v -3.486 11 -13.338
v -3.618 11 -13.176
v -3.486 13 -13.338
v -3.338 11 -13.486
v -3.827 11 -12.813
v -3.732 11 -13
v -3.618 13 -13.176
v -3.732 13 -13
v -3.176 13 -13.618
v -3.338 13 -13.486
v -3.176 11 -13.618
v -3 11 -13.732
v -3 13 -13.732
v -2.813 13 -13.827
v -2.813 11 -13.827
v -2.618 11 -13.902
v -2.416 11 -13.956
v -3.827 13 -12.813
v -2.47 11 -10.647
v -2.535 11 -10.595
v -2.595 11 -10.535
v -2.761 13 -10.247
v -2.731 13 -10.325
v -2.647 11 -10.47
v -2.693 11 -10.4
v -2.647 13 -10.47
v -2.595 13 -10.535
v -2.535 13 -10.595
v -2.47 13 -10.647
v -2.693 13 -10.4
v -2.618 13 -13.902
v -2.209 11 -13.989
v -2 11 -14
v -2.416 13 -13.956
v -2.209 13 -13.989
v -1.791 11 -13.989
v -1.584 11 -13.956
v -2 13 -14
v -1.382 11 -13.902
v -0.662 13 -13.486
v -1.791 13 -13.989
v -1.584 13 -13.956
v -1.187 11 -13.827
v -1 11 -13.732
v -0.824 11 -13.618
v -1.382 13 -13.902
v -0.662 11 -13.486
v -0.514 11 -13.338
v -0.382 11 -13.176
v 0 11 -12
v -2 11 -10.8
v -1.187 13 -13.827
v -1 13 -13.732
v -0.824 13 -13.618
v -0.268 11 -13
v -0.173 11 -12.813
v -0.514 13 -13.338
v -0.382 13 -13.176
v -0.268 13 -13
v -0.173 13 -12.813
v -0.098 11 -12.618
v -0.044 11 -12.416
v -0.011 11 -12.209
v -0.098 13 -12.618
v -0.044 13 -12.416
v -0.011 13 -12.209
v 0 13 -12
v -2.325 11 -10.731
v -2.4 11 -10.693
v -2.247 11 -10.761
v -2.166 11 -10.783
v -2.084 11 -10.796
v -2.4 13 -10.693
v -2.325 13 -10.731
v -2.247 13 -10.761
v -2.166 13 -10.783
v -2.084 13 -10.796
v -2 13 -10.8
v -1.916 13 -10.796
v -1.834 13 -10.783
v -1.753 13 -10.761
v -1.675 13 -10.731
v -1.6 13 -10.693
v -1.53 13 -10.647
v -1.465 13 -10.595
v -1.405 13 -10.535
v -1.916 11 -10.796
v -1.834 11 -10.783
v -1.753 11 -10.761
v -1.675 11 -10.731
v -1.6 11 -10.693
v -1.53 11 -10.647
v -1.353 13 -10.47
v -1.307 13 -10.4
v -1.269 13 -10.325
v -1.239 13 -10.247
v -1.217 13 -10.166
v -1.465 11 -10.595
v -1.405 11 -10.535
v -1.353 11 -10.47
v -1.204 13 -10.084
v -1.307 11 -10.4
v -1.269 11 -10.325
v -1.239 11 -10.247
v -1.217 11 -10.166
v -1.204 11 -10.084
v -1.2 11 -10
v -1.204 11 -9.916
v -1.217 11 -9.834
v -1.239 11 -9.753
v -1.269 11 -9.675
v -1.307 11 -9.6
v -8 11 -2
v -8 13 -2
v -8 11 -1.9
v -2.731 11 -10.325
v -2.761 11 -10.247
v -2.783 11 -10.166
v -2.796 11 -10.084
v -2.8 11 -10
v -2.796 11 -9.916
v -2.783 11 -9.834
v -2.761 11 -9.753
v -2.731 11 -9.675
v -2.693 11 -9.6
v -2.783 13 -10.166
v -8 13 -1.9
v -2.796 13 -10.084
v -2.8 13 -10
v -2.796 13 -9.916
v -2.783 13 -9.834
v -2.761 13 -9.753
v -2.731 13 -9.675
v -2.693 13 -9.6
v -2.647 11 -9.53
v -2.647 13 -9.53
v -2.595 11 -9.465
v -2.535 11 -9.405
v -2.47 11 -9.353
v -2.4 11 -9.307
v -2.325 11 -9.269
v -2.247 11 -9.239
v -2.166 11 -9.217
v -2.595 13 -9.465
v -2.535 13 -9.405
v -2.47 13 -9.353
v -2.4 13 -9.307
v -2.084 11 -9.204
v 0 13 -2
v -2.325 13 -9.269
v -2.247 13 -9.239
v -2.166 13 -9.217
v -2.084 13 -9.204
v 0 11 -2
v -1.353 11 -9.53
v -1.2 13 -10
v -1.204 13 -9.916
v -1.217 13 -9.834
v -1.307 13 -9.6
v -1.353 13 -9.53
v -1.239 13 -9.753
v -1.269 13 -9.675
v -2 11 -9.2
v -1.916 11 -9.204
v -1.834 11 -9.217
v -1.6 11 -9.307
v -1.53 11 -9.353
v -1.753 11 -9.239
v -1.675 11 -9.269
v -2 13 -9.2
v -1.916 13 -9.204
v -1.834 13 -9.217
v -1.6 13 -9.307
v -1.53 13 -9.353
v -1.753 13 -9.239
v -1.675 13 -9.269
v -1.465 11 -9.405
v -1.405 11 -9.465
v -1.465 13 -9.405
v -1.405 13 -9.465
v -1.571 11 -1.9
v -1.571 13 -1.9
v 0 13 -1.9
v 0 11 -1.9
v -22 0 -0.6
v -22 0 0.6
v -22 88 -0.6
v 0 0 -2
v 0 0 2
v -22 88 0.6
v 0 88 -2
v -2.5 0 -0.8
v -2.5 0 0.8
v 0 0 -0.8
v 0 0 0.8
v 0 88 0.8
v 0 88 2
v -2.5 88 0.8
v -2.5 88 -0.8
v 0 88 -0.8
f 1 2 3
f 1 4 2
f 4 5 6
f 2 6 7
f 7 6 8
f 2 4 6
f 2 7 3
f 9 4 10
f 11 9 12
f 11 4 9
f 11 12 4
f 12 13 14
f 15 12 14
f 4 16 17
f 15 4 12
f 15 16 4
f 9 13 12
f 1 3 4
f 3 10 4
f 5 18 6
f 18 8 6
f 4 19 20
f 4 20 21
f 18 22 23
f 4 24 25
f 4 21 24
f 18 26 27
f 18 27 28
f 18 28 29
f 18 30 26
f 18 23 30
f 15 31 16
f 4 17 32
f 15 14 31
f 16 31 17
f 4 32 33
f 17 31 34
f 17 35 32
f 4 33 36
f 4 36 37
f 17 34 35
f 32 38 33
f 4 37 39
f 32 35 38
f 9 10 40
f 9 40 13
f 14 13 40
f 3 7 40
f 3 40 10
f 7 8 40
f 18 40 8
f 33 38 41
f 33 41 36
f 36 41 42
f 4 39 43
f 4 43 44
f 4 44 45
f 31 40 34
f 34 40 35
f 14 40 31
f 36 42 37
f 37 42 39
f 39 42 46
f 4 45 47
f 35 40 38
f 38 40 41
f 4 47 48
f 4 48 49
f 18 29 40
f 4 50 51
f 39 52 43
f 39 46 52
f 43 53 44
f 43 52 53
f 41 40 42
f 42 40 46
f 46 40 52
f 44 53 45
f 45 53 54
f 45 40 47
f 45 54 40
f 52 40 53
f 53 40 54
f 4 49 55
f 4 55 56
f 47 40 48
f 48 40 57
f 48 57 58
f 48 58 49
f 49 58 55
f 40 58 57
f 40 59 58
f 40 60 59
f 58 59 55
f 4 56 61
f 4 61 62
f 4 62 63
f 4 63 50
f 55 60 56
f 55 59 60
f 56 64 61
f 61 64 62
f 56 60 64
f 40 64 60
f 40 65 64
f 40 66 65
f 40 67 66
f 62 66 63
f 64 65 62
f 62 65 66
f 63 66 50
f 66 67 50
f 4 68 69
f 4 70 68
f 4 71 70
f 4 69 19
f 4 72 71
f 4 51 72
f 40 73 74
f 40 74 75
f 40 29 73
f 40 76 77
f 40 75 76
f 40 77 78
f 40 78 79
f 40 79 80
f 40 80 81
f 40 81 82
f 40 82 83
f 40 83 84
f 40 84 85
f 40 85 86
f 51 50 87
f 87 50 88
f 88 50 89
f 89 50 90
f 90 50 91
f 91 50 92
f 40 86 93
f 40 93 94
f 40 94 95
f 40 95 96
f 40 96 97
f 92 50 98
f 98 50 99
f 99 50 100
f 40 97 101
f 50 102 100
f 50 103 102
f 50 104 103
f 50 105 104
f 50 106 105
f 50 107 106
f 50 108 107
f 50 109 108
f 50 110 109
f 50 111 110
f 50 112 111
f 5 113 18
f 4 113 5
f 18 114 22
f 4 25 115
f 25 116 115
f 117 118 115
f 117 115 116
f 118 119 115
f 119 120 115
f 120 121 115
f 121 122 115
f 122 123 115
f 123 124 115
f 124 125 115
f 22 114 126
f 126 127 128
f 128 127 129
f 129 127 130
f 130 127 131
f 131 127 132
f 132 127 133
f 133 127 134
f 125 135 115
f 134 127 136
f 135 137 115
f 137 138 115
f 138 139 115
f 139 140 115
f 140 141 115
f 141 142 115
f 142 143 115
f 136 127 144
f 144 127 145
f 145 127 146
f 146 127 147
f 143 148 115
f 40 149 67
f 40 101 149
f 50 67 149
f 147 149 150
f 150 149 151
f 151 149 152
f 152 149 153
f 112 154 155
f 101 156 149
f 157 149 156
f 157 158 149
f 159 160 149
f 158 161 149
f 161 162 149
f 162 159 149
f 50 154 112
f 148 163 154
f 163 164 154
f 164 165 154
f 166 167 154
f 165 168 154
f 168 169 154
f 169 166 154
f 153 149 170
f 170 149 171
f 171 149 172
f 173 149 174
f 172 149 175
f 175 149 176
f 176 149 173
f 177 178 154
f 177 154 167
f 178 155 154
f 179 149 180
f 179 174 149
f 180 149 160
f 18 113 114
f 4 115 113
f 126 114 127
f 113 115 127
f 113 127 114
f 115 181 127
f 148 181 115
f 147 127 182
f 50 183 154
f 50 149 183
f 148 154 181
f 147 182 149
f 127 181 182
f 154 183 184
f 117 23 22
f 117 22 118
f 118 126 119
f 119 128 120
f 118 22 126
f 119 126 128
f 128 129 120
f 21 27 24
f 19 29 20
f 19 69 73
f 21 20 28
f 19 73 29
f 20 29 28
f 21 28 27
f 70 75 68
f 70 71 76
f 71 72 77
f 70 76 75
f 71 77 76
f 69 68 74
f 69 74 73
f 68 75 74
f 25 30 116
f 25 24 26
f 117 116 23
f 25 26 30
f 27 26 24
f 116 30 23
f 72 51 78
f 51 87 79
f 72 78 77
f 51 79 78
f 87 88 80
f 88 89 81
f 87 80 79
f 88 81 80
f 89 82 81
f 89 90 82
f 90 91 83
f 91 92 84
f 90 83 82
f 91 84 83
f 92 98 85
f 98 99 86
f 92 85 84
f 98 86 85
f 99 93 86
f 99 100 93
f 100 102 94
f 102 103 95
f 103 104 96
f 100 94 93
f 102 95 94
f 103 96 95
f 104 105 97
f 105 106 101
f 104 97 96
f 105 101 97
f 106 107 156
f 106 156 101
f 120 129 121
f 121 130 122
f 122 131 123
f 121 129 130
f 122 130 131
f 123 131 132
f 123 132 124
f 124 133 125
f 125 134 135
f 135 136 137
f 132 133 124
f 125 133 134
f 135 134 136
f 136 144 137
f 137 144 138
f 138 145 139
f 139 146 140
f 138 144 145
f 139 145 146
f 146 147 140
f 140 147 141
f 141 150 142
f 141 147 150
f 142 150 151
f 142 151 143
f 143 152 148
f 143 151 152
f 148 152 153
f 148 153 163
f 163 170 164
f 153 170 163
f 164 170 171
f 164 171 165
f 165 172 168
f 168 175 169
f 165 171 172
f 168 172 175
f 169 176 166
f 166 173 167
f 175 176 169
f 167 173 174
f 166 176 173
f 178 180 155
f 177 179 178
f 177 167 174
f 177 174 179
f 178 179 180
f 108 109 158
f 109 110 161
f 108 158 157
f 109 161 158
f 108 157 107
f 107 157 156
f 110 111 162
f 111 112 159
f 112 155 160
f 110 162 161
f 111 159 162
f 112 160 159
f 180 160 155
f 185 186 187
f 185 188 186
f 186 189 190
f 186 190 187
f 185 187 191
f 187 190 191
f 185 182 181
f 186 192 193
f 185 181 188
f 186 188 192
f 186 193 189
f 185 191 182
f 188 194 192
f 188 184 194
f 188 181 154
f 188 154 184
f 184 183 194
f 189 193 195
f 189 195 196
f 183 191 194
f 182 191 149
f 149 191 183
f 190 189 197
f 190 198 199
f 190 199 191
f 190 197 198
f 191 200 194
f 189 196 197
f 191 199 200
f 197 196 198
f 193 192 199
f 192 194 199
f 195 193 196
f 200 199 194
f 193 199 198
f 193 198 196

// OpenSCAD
// file: design_params.scad
// ============================================================
// STARLING SHARED DESIGN PARAMETERS — single source of truth for
// every dimension two parts must agree on.
//
// Consumers:
//   - every part in cad/ does        include <design_params.scad>
//   - parts in cad/calibration/ do   include <../design_params.scad>
//   - scripts/check_params.py FAILS the build if any of these names
//     is re-declared anywhere else — change values HERE only.
//
// Keep this file to simple `name = value;` lines so the tooling can
// parse it. One-off experiments: `openscad -D name=value` beats the
// include, no need to edit this file.
// ============================================================

// --- The paper tube (bought part, consumable) ---
tube_od     = 52.95;   // measured tube OD — verify with cad/calibration/tube_fit_ring.scad
tube_wall   = 3;       // paper wall thickness (measure your tube)
tube_length = 540;

// --- Printed-part fits ---
sleeve_clearance = 0;  // added to every sleeve bore diameter; tune via the fit ring
fit_tol          = 0.2; // clearance for printed slots/pockets
sleeve_wall      = 3;  // wall thickness of printed sleeves

// --- Wing spar chain (rib holes = adapter sockets = carbon rods) ---
spar_rod_d    = 6;     // carbon rod diameter
spar_hole_d   = 6.2;   // printed hole for that rod
spar_spacing  = 20;    // chordwise distance between the two spars
spar_y_offset = 1.5;   // spar line sits this far above the rib chord line

// --- Wing geometry ---
rib_chord     = 100;
naca_code     = 2415;  // cambered lifting section
rib_thickness = 2;

// --- Wing adapter <-> root rib interface ---
wing_tab_thickness = 11; // adapter tab; the root-rib window = this + fit_tol
wing_tab_span      = 15; // how far the tab reaches out from the sleeve
adapter_length     = 40; // sleeve length = tab chord extent

// --- Stations along the tube (assembly; wing slides for CG trim) ---
wing_station       = 300; // wing adapter position, measured from the motor face
tail_tube_stop     = 54;  // tube bottoms out here inside the tail sleeve (rim top)
nose_sleeve_length = 20;  // how far the nose cone slides over the tube

// --- Servos (9 g / SG90 class) ---
servo_body   = [23, 12.2]; // [length, width]
servo_flange = [32, 12.2];
servo_height = 22;         // body height incl. shaft boss, without horn

// --- Control system (internal servos, wire pushrods through wall slots) ---
ctrl_chord       = 22;   // control-surface chord (elevator / rudder / aileron)
ctrl_thickness   = 4;    // control-surface root thickness = fin thickness
hinge_groove_w   = 1.6;  // groove for the hinge strip/tape, both fin TE and surface LE
hinge_groove_d   = 2.5;
pushrod_d        = 1.2;  // piano-wire pushrod, attached at the TIP of both arms
pushrod_slot_w   = 2.5;  // wall slot the pushrod moves in
pushrod_slot_len = 18;   // slot channel length along the rod (see throw_check.py)
servo_horn_r     = 10;   // full arm length — the wire connects at the far end
servo_travel_deg = 45;   // used one-sided travel; the arm can do ~±90 (180 total)
                         // but the linkage stays near-linear only within ±45
ctrl_horn_r      = 10;   // control-surface horn = servo horn -> 1:1 linkage

// Tail linkage geometry: servos sit HIGH in the tail sleeve and the wire
// rakes down/outboard through an ANGLED wall slot to the surface horn.
tail_servo_z    = 30;    // aft (shaft) end of the tail servo bodies
tail_slot_angle = 42;    // rod angle off the fuselage axis, in the radial plane

// --- Motor (22xx class, rear pusher) ---
motor_shaft_hole_d = 10;
motor_screw_hole_d = 4;
motor_pattern_x    = 16;  // screw pattern
motor_pattern_y    = 19;
// main file
// ==============================================================================
//   CONTROL SURFACE — printed flap for elevator, rudder, or aileron.
//
//   Local frame: hinge line = Y axis (span along +Y), chord extends -X (aft),
//   thickness centered on Z. The LE face carries a hinge groove matching the
//   groove in the fin trailing edges (and the wing TE): a flexible strip
//   (fiber tape / 0.5 mm PP) glues into both grooves and is the hinge —
//   printed living hinges crack, this doesn't.
//
//   The control horn is integrated near the root; the pushrod hooks into its
//   hole at ctrl_horn_r from the hinge line. Print flat, horn up, with a dab
//   of support under the horn (or slice horn-side down and accept the seam).
//
//   Default render = elevator (span 88). Other sizes are module parameters —
//   the assembly instantiates rudder (60) and aileron (120) variants.
// ==============================================================================

include <design_params.scad>

$fn = 60;

// horn_up: flips the horn to the +Z side of the surface — used by the
// ailerons, whose linkage lives ABOVE the wing (low-pressure side).
module control_surface(span = 88, horn_pos = 12, with_horn = true, horn_up = false) {
    te_thickness = 1.2;

    difference() {
        union() {
            // Tapered flap: full thickness at the hinge, thin TE
            rotate([90, 0, 0])   // build profile in X-Z, extrude along span
                translate([0, 0, -span])
                    linear_extrude(height = span)
                        polygon([
                            [0,            ctrl_thickness / 2],
                            [0,           -ctrl_thickness / 2],
                            [-ctrl_chord, -te_thickness / 2],
                            [-ctrl_chord,  te_thickness / 2],
                        ]);

            // Control horn: a blade in the X-Z plane, pushrod hole at
            // ctrl_horn_r from the hinge line
            if (with_horn)
                translate([0, horn_pos, 0])
                    mirror([0, 0, horn_up ? 1 : 0])
                        horn();
        }

        // Hinge groove along the LE face (mirror of the fin TE groove)
        translate([-hinge_groove_d, -0.1, -hinge_groove_w / 2])
            cube([hinge_groove_d + 0.1, span + 0.2, hinge_groove_w]);
    }
}

module horn() {
    hole_d = pushrod_d + 0.4;
    difference() {
        hull() {
            translate([-8, -1, -ctrl_thickness / 2])
                cube([8, 2, 0.1]);
            translate([-2, 0, -(ctrl_horn_r + 2)])
                rotate([90, 0, 0])
                    cylinder(h = 2, d = 4, center = true);
        }
        translate([-2, 0, -ctrl_horn_r])
            rotate([90, 0, 0])
                cylinder(h = 3, d = hole_d, center = true);
    }
}

control_surface();
